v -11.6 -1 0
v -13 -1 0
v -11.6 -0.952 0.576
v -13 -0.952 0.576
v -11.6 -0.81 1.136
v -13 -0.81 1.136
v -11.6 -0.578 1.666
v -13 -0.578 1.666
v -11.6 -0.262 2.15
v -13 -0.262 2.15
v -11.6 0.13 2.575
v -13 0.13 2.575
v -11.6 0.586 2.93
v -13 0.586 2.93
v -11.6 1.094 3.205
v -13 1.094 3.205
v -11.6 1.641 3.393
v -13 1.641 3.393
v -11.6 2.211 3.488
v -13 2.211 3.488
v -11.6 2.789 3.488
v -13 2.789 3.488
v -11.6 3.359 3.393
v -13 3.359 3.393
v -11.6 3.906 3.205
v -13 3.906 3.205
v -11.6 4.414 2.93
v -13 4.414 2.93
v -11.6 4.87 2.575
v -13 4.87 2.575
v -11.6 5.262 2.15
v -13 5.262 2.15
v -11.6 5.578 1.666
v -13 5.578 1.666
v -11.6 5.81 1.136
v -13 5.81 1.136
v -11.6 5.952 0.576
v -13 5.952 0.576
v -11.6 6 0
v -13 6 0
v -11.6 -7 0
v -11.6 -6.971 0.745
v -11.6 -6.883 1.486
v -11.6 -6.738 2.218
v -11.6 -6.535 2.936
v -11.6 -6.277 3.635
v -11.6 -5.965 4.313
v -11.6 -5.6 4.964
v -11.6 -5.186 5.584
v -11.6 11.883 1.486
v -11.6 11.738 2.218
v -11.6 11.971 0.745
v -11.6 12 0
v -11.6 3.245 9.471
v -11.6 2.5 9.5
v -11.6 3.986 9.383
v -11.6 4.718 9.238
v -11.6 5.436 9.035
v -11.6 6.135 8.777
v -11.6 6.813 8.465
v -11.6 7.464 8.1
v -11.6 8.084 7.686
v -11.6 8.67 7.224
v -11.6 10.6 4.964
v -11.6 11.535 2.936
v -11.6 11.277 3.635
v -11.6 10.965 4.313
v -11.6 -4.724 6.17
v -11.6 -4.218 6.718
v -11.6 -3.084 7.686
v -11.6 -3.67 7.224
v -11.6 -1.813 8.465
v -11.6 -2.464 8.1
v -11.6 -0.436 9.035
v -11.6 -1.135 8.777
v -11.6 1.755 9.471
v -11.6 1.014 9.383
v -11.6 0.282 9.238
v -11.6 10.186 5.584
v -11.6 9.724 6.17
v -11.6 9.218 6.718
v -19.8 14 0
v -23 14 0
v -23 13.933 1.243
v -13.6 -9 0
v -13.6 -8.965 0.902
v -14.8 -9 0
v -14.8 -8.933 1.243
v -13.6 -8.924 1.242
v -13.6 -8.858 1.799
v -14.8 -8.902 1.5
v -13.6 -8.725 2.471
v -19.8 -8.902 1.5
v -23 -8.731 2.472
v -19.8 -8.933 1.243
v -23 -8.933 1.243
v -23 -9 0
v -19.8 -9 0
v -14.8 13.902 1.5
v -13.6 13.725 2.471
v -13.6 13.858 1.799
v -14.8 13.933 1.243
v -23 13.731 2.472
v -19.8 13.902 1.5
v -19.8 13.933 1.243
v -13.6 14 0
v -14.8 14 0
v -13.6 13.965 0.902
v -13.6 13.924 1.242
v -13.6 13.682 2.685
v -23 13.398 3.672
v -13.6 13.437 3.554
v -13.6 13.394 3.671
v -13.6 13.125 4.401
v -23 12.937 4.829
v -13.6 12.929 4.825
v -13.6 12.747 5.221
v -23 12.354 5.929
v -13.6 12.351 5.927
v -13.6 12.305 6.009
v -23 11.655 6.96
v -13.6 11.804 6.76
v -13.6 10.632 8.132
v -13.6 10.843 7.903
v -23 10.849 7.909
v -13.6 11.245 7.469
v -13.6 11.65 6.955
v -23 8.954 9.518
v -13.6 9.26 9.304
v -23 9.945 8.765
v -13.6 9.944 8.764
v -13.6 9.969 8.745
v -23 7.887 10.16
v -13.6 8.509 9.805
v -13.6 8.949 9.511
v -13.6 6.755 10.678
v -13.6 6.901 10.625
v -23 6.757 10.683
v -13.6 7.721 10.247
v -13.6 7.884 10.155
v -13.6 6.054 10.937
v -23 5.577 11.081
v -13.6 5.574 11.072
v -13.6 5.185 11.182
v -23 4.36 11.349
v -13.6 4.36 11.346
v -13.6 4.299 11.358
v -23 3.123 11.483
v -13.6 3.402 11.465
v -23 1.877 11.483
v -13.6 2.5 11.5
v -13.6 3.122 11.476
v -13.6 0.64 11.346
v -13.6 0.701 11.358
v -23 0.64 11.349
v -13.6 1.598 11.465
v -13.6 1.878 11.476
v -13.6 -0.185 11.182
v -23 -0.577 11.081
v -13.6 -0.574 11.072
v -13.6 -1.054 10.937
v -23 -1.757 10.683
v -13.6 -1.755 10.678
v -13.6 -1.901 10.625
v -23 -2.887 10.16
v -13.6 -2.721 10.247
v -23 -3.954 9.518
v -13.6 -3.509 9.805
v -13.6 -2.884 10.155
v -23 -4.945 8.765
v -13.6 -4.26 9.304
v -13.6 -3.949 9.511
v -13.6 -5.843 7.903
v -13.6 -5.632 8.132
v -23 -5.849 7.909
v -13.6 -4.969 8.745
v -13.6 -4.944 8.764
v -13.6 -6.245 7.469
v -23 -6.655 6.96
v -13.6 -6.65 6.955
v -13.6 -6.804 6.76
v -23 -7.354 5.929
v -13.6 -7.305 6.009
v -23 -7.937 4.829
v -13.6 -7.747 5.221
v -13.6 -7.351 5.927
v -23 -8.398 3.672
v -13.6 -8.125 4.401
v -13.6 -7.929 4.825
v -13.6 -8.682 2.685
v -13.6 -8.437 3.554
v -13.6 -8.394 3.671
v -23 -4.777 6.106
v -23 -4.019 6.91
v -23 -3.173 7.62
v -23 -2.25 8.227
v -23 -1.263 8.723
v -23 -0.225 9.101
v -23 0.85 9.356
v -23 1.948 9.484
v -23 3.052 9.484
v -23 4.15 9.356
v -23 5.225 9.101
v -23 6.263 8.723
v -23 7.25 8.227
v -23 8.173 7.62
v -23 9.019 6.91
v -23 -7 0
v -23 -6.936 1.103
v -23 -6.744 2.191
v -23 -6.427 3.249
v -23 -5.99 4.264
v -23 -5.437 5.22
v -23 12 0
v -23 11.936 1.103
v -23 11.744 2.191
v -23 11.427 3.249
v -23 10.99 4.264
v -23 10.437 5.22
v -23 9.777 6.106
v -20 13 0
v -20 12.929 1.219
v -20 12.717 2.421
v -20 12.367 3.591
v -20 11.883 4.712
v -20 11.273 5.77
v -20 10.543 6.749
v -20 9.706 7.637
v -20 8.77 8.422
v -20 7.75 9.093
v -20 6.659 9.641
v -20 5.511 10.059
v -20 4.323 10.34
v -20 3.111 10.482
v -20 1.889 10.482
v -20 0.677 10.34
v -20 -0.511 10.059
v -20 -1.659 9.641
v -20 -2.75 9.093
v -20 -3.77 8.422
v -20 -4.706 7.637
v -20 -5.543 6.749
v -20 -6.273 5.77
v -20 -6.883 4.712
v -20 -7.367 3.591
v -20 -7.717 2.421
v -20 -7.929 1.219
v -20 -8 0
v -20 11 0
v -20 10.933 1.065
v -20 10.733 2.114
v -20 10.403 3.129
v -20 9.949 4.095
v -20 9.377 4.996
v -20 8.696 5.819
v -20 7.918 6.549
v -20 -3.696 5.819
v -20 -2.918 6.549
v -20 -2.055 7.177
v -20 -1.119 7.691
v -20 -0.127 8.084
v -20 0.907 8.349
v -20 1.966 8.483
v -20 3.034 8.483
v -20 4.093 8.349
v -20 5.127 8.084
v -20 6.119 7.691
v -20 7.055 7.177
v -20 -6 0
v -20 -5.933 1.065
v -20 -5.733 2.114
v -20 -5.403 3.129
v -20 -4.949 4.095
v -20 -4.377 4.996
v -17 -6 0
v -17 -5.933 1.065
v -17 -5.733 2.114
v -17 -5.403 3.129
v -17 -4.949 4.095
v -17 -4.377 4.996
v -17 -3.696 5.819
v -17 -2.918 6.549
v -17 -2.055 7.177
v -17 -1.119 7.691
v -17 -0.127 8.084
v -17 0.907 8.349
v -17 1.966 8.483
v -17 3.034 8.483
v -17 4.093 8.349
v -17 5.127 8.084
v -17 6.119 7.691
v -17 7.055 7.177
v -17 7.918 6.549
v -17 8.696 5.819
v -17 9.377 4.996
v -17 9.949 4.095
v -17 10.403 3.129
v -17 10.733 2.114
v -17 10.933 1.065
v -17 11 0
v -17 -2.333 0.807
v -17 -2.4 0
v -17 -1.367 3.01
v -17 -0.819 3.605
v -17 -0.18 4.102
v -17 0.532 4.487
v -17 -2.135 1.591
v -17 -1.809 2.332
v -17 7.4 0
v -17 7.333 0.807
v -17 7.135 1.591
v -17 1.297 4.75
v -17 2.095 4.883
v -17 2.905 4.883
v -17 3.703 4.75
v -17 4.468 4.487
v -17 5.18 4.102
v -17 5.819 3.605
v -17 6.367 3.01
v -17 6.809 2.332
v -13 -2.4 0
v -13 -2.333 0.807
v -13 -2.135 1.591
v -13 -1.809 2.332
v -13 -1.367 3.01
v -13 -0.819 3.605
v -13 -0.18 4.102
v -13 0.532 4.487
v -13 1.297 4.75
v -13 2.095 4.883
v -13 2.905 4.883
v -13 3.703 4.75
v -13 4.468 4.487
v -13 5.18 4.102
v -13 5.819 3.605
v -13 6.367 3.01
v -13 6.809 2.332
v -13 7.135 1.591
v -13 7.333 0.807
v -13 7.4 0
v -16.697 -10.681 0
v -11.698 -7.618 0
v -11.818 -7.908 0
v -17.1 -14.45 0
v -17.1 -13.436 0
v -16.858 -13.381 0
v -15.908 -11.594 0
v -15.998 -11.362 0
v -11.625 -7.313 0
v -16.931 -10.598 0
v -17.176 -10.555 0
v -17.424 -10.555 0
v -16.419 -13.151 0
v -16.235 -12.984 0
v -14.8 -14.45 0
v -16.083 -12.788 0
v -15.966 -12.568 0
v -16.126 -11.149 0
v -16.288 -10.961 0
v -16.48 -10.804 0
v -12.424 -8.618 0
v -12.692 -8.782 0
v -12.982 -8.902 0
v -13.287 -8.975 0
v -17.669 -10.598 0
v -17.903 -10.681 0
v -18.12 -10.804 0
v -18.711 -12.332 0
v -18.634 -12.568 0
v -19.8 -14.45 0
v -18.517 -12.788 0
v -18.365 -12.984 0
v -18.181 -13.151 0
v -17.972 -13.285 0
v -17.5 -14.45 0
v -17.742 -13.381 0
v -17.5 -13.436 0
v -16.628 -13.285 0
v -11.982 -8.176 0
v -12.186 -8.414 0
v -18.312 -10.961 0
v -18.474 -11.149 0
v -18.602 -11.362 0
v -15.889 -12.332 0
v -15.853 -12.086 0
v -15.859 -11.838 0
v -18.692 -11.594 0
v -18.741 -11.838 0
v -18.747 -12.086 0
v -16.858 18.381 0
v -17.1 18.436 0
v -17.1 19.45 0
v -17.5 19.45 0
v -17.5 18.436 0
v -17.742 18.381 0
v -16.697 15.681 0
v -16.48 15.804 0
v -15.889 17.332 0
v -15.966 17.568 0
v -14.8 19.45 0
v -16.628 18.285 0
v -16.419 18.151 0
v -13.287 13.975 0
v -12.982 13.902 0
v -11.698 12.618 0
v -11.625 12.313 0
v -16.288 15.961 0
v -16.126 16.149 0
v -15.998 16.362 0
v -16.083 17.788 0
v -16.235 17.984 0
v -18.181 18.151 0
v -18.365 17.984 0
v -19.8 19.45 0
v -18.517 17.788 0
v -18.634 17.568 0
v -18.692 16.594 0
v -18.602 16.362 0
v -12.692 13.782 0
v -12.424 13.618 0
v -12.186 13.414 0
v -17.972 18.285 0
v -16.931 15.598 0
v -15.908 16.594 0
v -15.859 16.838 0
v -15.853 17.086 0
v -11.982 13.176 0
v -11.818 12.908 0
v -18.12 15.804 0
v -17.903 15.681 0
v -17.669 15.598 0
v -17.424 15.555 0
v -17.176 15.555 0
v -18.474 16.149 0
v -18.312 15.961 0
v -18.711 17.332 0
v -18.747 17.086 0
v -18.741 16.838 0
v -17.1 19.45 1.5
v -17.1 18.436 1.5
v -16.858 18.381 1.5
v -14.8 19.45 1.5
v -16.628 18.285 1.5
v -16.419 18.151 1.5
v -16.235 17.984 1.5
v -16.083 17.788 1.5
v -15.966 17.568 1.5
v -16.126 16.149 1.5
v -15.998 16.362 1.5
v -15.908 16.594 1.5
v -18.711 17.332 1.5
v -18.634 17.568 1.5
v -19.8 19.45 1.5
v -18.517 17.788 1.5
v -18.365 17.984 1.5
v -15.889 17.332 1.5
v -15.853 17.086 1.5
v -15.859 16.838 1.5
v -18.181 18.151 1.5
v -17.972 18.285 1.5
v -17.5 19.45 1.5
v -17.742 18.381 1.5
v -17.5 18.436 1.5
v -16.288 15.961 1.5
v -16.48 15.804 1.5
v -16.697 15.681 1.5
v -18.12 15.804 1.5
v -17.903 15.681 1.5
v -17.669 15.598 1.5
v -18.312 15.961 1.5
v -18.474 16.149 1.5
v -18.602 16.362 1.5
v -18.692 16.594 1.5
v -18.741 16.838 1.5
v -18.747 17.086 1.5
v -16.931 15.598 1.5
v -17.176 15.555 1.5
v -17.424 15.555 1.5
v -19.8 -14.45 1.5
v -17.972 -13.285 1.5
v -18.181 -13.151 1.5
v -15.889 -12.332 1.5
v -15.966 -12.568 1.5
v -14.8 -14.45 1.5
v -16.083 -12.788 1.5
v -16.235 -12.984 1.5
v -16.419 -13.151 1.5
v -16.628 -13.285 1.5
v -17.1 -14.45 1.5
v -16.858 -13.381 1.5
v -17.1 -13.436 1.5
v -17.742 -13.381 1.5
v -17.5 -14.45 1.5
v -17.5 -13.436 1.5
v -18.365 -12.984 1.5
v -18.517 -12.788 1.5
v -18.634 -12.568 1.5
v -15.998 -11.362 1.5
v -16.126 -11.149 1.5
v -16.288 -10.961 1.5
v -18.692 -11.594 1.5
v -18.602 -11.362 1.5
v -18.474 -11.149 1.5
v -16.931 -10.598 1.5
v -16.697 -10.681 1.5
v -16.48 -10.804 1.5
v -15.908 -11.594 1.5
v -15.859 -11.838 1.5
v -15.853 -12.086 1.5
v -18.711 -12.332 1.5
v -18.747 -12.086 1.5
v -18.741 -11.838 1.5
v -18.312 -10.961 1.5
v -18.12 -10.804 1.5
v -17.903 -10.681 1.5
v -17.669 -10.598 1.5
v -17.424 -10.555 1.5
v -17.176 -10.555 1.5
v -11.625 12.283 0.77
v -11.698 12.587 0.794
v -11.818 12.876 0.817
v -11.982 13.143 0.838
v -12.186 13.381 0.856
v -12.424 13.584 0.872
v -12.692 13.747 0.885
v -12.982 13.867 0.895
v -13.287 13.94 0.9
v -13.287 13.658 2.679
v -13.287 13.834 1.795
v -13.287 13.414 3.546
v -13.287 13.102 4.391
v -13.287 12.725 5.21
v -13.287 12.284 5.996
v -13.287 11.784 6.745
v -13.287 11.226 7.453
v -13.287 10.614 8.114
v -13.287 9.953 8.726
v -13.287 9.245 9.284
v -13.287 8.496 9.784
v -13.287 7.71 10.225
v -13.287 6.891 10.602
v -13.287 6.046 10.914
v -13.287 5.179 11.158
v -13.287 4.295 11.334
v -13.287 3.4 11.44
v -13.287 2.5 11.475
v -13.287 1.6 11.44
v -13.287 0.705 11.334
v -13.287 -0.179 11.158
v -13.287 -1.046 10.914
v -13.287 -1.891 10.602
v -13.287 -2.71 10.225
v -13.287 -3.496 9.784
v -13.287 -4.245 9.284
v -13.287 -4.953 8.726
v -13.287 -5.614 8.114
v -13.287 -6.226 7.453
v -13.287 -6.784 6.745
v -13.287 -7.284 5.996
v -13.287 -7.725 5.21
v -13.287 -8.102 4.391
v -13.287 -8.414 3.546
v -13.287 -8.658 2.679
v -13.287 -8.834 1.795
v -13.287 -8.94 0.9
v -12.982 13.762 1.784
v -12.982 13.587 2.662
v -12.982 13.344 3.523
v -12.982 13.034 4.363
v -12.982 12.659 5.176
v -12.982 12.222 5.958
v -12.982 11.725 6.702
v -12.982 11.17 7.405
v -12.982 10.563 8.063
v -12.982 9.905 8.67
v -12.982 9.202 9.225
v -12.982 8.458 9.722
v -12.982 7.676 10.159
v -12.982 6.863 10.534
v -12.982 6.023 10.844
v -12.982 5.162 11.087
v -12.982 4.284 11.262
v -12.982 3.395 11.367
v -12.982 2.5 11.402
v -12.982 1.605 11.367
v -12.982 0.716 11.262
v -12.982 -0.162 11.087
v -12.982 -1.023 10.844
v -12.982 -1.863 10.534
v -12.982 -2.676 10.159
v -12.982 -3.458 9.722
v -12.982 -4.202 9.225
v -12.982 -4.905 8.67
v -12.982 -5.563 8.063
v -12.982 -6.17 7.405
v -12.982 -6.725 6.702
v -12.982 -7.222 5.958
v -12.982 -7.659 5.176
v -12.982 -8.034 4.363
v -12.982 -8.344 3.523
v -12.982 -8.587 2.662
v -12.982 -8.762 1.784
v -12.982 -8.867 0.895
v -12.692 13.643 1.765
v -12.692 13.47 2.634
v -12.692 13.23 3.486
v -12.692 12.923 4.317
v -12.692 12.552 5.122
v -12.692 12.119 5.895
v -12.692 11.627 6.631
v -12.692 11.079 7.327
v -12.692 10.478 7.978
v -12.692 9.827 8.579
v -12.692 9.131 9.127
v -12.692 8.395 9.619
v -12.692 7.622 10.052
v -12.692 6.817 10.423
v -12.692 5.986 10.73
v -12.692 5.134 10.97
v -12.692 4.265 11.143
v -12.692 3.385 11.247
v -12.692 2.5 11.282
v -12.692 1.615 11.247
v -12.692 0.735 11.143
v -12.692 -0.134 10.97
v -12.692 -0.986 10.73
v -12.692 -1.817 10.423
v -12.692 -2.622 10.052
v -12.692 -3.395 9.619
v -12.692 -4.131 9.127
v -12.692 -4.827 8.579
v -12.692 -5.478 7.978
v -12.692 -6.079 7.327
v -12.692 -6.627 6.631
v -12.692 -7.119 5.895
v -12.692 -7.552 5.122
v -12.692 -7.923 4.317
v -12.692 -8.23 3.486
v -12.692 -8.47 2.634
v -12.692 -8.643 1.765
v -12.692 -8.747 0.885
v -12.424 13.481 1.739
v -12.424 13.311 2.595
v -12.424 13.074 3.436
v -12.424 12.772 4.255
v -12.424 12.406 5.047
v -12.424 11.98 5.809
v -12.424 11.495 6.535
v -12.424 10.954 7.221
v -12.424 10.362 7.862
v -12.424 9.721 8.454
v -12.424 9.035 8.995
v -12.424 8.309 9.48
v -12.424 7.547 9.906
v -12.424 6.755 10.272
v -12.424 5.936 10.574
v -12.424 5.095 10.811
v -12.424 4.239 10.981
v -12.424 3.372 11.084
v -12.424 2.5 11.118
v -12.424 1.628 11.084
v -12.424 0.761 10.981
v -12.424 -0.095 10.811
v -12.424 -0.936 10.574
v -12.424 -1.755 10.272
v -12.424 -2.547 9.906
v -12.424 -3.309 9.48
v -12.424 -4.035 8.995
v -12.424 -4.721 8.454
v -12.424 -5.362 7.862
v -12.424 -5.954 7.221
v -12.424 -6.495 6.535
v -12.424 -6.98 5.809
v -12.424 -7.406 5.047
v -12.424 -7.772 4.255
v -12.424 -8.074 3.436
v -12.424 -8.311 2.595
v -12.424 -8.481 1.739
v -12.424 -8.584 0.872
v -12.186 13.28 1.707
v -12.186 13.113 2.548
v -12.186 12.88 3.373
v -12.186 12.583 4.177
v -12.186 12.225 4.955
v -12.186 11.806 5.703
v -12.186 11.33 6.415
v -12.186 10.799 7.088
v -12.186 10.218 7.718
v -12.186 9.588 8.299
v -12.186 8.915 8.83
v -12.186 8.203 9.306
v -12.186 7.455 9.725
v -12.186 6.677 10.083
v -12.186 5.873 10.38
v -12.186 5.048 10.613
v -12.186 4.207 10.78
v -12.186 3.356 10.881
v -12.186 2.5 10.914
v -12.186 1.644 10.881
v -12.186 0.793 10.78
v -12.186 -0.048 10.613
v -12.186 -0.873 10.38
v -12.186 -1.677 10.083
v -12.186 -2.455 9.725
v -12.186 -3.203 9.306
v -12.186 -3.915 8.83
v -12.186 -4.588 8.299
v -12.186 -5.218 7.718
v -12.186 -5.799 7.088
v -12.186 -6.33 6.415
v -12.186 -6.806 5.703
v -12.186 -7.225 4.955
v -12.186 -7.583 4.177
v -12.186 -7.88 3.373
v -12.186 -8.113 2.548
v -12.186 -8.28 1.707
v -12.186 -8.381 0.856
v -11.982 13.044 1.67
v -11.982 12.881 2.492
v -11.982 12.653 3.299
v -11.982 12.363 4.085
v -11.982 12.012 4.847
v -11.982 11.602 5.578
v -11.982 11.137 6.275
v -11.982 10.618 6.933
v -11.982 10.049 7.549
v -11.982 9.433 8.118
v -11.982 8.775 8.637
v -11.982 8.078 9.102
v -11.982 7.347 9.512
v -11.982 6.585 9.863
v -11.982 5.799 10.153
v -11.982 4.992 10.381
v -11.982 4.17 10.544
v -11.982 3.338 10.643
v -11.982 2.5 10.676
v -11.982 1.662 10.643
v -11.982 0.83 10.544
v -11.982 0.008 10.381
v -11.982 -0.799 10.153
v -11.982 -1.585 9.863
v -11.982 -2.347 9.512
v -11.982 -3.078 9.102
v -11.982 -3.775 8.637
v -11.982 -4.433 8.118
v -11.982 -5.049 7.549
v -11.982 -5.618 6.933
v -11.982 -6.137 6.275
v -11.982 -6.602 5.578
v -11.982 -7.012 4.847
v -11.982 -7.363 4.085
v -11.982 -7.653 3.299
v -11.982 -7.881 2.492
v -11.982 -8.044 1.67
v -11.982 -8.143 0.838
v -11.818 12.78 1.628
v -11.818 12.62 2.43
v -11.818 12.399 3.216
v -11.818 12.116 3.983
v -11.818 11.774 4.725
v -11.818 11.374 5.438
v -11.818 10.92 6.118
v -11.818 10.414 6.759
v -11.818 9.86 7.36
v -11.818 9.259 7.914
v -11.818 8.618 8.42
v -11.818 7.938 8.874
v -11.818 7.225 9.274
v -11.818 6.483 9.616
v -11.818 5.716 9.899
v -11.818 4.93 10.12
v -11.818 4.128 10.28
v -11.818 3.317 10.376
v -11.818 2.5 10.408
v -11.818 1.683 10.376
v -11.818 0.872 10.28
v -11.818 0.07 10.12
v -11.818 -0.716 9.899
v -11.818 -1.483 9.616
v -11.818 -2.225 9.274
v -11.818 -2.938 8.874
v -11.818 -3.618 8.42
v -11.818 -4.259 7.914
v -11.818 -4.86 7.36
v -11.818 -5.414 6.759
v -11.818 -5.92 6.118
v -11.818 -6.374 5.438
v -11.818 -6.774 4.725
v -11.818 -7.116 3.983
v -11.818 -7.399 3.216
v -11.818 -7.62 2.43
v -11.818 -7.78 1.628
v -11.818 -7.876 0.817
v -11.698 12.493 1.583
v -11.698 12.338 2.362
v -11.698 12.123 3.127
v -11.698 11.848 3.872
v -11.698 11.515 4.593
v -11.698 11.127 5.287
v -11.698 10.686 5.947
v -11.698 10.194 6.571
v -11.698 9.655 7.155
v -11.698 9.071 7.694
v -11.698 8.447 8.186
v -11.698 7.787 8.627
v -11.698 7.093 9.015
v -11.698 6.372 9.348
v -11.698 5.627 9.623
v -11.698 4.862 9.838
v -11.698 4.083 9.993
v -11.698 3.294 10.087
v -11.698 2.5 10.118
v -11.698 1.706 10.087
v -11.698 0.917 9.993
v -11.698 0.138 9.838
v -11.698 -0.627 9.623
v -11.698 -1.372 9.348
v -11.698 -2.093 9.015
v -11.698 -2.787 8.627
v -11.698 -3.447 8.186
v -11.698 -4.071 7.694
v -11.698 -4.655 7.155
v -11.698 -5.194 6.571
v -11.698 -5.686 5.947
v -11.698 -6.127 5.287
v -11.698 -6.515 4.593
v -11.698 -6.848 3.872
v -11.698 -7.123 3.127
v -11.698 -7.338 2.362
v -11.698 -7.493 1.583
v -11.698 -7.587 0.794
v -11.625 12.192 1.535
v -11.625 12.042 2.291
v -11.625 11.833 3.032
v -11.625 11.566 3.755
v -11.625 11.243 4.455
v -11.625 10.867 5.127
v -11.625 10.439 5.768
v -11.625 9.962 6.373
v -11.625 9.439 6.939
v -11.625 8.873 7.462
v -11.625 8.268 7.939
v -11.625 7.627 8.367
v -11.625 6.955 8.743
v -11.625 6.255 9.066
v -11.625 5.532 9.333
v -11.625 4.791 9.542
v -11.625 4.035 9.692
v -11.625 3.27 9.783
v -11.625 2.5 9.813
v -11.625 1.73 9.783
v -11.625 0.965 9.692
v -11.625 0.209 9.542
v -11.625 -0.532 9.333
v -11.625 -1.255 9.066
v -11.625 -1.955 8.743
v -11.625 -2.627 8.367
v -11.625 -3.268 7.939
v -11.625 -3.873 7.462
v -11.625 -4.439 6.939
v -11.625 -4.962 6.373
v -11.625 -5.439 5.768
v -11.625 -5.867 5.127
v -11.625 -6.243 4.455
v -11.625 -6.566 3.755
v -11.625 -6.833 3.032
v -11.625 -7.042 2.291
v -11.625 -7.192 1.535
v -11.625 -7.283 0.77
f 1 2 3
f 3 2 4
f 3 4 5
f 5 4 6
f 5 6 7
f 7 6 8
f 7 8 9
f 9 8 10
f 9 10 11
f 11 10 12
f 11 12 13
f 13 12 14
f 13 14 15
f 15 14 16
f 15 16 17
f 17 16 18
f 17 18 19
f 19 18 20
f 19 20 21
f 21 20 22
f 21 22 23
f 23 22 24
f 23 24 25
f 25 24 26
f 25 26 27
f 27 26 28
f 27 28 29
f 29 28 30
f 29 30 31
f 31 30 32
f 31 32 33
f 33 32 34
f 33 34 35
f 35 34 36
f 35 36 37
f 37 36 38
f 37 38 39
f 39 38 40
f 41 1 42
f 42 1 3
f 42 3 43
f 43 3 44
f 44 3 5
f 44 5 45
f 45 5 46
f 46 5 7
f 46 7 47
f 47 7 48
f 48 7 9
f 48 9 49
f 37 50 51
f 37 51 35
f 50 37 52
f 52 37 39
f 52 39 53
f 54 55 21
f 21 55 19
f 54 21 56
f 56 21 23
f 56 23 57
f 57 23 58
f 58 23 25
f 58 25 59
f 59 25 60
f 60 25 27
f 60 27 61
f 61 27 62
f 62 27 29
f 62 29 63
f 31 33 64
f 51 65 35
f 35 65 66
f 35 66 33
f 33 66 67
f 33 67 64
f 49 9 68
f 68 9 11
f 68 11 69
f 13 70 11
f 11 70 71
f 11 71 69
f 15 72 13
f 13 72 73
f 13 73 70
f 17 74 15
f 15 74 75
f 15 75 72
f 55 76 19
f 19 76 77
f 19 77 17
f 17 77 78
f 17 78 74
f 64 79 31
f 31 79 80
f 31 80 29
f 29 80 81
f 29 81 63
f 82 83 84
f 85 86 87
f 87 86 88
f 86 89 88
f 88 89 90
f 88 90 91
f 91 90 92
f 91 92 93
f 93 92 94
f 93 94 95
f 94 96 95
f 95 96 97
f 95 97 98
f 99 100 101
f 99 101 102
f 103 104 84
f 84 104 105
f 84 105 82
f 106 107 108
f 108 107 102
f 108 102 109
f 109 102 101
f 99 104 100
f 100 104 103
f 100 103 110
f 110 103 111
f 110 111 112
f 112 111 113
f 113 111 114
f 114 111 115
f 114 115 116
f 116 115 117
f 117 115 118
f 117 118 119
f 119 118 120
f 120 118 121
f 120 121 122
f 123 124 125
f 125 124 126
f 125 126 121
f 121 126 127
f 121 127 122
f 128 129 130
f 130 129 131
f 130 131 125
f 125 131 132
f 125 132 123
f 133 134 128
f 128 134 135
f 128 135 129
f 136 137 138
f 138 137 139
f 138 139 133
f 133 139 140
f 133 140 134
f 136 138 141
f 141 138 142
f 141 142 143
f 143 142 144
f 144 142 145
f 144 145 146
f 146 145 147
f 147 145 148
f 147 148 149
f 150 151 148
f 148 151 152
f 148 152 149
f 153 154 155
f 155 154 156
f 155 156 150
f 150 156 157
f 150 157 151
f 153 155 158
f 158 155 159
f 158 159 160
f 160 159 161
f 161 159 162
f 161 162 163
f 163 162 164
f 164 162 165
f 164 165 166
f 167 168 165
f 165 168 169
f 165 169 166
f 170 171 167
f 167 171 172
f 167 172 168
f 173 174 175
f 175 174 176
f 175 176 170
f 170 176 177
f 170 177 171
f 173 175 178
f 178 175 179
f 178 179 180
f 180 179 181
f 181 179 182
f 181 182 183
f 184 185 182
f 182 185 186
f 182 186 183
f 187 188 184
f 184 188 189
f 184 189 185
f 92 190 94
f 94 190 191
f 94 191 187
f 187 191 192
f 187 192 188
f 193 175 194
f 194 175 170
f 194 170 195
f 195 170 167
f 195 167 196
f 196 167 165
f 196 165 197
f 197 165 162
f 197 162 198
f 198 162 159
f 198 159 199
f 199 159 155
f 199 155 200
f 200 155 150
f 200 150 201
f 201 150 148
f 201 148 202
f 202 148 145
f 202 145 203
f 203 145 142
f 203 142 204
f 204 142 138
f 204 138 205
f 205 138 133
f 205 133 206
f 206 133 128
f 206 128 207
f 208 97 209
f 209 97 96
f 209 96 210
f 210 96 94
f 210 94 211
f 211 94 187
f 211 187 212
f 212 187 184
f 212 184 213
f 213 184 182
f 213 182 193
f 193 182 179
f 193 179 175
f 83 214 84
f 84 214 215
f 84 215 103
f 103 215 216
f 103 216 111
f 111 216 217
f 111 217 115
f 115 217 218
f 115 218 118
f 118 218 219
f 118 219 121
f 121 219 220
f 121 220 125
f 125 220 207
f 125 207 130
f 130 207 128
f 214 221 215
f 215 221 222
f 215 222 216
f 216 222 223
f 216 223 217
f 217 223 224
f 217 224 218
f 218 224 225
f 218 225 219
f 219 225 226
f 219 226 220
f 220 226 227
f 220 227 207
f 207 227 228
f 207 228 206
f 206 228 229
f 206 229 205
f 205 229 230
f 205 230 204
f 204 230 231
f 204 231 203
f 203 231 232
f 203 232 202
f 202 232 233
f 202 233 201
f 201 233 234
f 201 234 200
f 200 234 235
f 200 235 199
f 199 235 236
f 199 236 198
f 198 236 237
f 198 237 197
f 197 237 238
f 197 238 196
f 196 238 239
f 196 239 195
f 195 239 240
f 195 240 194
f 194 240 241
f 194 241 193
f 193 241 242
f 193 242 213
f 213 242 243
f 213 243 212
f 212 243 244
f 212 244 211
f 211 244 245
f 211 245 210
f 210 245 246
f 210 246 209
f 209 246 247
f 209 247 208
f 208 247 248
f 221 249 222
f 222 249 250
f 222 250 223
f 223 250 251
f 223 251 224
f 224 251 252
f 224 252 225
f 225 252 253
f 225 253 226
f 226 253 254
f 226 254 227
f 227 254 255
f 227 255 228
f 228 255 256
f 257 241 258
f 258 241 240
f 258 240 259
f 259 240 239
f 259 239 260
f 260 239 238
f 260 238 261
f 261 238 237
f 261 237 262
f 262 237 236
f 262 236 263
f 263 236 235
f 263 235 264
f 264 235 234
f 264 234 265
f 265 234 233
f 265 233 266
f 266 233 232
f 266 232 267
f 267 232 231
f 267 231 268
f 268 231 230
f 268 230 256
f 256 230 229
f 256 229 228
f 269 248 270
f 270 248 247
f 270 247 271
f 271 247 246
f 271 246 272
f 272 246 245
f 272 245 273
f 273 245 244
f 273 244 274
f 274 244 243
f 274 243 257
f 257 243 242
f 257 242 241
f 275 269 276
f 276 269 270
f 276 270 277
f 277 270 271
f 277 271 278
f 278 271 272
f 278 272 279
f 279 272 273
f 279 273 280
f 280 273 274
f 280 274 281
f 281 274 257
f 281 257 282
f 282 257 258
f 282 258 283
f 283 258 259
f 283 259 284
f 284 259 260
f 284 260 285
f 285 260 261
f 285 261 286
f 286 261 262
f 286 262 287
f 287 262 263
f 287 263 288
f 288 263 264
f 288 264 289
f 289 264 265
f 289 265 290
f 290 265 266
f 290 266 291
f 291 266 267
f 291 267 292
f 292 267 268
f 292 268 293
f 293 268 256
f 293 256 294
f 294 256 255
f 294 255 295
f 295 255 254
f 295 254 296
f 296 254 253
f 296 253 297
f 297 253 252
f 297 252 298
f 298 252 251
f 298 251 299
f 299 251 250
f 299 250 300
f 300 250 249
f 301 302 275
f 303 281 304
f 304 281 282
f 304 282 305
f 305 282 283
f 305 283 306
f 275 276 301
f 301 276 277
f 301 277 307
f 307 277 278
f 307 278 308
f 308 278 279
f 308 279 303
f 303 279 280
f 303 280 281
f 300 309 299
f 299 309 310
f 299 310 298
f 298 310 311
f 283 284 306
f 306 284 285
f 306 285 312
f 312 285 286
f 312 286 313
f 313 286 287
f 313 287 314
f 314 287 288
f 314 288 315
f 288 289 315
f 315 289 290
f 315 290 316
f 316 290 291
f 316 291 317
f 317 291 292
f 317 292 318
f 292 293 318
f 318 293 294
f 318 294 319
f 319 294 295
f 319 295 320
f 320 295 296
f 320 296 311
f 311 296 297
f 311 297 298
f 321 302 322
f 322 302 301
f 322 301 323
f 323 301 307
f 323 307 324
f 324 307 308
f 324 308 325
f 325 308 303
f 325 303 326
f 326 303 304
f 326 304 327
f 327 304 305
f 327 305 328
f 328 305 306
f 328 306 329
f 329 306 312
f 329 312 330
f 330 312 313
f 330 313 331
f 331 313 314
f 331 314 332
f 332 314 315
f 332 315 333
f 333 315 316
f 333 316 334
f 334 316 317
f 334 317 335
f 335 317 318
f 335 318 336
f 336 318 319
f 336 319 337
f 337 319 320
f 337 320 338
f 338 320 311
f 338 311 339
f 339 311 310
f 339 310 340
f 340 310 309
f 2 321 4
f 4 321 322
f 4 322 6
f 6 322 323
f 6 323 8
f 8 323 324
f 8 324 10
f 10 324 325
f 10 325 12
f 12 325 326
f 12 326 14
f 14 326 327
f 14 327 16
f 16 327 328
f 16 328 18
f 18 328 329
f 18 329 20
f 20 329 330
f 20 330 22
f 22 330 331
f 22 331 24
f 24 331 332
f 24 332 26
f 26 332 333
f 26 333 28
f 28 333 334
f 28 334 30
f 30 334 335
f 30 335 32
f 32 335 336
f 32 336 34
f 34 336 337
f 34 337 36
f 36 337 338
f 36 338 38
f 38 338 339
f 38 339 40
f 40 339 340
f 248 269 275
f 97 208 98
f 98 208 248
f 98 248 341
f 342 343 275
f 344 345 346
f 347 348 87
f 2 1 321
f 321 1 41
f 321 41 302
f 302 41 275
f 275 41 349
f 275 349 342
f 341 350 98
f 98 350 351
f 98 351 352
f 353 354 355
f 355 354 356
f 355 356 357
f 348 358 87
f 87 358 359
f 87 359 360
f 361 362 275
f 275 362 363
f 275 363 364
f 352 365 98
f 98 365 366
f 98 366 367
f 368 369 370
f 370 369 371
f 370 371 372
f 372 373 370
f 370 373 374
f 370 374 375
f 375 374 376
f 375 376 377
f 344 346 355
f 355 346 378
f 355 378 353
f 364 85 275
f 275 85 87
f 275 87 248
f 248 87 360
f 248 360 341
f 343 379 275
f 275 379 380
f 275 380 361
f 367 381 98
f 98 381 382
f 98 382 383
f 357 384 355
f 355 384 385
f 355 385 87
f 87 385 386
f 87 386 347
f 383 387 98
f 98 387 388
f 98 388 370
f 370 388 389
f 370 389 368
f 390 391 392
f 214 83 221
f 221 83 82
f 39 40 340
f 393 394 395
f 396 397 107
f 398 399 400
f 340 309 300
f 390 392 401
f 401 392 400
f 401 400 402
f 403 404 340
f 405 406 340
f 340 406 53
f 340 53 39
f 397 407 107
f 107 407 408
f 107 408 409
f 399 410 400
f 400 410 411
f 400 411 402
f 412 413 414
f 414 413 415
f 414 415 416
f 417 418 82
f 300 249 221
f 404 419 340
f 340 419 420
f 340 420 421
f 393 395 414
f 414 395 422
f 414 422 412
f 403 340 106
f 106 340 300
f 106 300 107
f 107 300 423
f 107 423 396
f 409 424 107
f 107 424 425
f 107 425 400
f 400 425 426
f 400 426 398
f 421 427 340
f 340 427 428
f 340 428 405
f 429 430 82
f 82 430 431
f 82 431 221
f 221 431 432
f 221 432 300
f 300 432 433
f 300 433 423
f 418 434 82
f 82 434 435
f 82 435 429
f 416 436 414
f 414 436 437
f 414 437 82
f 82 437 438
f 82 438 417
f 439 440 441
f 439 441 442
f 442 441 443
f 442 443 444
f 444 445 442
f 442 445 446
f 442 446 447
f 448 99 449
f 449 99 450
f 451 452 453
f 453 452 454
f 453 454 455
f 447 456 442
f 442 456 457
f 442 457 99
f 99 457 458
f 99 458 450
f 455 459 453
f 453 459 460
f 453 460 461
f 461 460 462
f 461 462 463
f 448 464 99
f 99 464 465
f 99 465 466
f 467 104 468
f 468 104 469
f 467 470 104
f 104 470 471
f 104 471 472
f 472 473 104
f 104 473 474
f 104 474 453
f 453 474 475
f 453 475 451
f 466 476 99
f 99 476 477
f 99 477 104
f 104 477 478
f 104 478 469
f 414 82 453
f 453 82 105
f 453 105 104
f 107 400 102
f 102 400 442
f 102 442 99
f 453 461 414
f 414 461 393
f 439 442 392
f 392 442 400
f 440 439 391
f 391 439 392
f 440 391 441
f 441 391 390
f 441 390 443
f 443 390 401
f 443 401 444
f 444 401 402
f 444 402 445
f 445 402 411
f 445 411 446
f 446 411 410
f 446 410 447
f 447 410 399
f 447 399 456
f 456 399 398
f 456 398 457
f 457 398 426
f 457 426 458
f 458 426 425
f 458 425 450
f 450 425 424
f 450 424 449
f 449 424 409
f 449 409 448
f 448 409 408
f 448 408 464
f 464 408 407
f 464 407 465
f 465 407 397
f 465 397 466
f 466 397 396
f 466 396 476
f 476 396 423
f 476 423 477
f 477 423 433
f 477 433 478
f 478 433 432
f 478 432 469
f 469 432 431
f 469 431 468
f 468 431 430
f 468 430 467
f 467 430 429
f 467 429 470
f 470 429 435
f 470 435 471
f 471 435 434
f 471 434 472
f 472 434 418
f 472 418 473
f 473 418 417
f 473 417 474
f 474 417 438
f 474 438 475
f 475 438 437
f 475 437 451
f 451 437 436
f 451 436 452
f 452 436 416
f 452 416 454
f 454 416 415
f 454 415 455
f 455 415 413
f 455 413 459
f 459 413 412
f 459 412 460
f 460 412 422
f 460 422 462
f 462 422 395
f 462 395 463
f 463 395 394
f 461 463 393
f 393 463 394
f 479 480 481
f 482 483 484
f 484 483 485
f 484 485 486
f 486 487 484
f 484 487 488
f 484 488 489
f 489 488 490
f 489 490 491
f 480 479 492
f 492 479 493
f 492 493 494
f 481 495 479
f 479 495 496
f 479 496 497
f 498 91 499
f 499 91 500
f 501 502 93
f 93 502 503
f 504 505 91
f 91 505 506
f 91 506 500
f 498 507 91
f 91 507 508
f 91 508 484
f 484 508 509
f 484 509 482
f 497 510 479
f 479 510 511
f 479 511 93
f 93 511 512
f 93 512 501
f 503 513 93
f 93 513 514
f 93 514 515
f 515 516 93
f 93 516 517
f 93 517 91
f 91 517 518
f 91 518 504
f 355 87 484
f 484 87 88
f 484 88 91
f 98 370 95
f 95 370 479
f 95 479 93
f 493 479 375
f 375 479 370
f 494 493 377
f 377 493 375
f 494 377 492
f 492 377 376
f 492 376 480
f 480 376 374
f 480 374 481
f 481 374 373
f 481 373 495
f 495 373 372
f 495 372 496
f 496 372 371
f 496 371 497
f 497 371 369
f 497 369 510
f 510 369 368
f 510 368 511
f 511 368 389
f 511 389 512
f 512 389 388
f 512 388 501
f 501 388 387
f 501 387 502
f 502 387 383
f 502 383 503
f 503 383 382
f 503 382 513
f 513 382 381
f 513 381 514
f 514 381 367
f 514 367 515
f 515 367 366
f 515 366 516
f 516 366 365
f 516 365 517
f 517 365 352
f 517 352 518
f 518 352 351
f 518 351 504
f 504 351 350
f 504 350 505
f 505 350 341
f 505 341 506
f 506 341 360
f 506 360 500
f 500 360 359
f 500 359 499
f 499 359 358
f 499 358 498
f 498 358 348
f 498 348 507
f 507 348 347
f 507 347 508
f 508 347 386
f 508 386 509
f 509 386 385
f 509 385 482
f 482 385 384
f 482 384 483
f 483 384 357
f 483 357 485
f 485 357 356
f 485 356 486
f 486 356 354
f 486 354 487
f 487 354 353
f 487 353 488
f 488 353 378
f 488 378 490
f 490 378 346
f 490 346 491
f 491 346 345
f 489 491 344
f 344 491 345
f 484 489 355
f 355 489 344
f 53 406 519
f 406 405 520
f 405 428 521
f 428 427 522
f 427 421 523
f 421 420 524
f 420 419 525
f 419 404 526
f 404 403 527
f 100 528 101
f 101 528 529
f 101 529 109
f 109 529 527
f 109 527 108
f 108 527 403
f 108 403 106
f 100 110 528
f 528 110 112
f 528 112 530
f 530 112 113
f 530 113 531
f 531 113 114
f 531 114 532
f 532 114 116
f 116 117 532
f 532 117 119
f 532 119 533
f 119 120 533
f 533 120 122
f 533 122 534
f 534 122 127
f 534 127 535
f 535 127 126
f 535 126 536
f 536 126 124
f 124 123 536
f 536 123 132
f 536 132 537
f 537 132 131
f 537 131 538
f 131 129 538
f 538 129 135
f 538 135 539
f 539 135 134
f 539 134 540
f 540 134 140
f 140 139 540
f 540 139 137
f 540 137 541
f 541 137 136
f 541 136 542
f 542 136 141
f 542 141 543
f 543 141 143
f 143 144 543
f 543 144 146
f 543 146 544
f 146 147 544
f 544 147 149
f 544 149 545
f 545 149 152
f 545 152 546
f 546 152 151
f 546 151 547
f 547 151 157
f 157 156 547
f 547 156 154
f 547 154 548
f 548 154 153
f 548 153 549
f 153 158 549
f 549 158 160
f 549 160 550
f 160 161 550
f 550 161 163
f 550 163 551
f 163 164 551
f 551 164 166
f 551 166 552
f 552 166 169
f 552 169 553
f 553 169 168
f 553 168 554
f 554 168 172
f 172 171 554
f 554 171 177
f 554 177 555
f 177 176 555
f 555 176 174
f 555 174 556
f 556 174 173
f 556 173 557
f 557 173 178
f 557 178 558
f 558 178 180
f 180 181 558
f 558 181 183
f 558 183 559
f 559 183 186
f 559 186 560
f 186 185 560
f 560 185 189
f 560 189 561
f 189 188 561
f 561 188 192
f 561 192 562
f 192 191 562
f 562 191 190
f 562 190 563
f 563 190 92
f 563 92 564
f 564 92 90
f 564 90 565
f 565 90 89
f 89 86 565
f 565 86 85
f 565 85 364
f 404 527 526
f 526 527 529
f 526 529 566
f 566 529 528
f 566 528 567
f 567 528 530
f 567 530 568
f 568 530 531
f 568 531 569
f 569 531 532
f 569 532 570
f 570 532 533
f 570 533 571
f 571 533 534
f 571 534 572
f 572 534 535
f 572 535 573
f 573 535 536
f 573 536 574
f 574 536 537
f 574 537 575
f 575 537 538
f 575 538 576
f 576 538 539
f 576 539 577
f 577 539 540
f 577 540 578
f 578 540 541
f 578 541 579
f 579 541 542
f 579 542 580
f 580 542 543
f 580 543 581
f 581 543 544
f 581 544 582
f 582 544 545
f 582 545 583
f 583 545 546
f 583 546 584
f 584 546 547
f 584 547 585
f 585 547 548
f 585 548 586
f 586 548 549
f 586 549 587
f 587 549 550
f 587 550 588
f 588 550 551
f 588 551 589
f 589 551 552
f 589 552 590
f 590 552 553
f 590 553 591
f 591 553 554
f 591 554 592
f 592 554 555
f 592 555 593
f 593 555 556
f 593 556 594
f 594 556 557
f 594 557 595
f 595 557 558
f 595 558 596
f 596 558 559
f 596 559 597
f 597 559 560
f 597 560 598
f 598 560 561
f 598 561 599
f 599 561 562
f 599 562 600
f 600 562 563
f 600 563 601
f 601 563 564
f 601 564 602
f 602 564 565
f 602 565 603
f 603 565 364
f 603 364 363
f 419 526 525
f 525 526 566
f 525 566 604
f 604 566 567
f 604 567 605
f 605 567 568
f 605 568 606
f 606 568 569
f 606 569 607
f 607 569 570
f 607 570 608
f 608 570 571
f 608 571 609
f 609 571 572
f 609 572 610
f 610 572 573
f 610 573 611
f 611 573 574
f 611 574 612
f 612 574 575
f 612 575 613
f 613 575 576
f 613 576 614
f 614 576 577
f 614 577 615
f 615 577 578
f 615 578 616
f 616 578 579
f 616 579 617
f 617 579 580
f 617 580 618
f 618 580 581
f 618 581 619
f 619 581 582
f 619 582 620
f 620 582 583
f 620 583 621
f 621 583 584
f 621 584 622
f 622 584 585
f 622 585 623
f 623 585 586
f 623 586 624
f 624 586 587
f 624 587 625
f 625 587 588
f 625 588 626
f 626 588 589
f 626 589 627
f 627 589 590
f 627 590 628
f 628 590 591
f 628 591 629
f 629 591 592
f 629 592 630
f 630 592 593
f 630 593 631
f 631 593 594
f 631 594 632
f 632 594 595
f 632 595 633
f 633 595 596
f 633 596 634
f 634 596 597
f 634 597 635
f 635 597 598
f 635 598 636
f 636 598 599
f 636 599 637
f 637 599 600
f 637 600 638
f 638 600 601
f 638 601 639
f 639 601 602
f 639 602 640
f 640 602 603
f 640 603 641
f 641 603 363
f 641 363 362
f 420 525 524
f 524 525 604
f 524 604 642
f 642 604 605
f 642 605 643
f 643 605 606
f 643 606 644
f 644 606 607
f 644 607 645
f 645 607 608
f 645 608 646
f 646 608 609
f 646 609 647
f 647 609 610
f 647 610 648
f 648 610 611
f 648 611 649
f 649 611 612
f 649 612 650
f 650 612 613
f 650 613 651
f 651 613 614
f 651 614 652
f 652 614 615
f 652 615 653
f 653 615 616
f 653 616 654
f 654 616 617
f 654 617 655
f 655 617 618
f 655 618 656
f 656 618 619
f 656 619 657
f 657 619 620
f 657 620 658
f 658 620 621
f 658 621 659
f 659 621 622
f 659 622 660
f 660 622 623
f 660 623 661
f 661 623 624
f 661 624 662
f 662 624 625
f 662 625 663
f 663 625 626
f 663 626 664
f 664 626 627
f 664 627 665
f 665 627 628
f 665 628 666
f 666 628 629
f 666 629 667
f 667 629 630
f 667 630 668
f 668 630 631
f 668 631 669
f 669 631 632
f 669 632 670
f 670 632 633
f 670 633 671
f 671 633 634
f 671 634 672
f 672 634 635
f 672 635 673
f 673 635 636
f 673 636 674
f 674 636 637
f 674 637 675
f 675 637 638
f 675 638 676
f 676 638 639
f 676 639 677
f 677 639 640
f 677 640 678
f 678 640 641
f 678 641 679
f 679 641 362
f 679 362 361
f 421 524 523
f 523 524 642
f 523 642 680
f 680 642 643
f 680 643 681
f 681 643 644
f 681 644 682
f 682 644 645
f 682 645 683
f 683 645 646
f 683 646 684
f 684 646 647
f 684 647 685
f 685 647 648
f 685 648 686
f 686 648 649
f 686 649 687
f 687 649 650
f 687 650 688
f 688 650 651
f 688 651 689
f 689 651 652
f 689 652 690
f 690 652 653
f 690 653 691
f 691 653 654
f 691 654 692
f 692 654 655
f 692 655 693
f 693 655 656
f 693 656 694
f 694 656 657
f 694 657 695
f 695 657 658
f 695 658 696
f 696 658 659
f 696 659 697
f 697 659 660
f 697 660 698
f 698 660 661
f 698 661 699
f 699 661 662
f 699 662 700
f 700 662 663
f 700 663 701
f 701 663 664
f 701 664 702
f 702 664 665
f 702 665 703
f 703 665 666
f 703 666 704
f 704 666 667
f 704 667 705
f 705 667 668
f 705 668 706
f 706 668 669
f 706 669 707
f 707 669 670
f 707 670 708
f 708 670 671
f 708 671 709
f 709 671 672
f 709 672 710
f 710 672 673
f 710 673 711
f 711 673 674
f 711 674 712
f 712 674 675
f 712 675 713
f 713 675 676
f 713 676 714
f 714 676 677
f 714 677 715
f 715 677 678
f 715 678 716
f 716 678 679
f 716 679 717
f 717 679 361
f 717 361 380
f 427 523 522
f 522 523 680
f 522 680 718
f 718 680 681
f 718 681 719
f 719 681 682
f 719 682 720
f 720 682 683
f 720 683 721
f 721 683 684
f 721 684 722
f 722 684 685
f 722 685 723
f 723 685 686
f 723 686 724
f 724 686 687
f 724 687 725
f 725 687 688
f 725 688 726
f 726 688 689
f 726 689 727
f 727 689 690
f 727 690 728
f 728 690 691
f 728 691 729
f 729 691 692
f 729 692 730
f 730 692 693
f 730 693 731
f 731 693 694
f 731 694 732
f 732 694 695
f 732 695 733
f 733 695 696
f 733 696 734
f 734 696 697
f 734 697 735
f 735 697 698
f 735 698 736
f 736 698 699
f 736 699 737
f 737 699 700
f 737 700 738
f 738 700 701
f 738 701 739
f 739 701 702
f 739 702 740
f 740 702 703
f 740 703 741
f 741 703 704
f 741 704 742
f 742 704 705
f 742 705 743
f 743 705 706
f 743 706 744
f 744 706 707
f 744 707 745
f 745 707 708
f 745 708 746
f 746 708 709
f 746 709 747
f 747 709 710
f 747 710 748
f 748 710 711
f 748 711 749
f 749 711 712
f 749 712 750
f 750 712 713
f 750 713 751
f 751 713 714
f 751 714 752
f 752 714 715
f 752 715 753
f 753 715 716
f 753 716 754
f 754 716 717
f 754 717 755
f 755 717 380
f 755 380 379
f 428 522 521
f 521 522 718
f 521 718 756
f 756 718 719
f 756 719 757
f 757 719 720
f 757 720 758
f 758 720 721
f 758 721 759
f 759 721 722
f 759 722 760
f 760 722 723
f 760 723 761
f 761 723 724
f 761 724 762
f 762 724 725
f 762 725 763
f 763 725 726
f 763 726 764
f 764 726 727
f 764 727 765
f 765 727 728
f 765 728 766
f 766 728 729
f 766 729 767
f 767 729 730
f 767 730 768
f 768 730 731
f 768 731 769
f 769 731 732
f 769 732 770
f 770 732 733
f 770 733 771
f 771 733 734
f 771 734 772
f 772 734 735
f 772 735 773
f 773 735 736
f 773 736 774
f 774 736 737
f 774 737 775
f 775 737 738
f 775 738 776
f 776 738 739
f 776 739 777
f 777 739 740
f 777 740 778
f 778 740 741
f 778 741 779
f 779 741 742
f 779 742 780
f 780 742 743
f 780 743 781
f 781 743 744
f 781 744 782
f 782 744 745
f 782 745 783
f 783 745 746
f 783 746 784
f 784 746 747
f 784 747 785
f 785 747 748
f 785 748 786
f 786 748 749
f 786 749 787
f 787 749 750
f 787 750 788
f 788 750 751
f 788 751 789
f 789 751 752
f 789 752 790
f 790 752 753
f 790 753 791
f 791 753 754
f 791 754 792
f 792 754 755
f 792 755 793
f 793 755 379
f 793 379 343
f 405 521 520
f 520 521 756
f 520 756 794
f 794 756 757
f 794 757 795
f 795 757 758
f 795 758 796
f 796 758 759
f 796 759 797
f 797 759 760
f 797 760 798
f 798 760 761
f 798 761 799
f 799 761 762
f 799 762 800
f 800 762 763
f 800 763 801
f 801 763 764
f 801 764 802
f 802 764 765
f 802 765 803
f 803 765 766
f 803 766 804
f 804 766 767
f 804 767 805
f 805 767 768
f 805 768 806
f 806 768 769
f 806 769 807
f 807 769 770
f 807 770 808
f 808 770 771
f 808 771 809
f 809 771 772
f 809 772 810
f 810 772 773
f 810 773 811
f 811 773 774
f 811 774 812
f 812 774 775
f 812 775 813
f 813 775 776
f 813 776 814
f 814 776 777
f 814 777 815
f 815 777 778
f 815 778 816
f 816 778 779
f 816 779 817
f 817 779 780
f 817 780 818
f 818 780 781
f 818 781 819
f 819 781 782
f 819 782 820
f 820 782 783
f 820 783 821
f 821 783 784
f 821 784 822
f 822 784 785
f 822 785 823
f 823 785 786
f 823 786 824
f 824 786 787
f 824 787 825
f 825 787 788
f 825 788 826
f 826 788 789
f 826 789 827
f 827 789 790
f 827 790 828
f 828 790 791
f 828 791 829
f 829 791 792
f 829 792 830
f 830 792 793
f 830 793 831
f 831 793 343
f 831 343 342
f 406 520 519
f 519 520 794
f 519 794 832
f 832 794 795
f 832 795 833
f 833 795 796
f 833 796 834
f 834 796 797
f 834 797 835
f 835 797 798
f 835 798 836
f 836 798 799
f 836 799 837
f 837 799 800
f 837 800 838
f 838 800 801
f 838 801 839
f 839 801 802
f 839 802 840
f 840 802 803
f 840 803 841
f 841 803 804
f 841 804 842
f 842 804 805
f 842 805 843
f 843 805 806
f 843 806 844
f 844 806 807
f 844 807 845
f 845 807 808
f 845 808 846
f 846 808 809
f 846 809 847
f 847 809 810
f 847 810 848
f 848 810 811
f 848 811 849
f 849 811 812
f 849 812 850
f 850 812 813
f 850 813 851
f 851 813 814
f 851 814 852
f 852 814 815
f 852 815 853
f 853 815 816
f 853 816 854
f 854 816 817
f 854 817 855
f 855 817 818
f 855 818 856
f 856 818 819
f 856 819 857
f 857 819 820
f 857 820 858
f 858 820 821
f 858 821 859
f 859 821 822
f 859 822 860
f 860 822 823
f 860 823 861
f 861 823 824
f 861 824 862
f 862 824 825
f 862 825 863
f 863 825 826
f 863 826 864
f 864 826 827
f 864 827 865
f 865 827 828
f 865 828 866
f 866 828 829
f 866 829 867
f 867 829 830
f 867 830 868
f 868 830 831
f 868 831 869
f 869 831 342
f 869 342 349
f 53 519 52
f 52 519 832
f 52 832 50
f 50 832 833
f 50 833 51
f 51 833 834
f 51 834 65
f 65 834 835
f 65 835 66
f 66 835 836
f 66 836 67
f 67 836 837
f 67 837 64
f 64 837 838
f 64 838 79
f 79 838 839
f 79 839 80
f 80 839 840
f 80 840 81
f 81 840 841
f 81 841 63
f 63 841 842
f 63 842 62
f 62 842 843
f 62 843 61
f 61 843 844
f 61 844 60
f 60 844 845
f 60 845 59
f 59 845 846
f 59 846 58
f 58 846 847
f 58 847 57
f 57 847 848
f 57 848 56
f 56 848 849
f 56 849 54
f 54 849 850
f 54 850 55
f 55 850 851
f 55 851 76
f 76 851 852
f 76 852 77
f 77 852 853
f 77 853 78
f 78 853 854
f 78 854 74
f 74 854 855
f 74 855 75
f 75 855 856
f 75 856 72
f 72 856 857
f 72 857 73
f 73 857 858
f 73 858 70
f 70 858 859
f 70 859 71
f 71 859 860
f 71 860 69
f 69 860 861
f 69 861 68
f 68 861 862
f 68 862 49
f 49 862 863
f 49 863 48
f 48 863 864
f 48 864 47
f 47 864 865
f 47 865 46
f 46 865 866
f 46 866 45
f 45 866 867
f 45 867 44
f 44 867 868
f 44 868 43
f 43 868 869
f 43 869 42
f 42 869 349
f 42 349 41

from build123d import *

# Parameters (mm, degrees)
SKETCH_3_W          = 14.74967026
SKETCH_3_H          = 24.956193141
CUT_EXTRUDE_2_DEPTH = 18
EXTRUDE_2_DEPTH     = 1.5
FILLET_1_R          = 2


with BuildPart() as part:
    # 草图1 → 旋转1 (revolve)
    with BuildSketch(Plane.XY, mode=Mode.PRIVATE) as revolve_1_sk:
        Polygon((-11.6, 6), (-11.6, 14), (-23, 14), (-23, 12), (-20, 13), (-20, 11), (-17, 11), (-17, 7.4), (-13, 7.4), (-13, 6), align=None)
    revolve(revolve_1_sk.sketch.rotate(Axis((-19.18351236, 2.5, 0), (1, 0, 0)), 180), axis=Axis((-19.18351236, 2.5, 0), (1, 0, 0)))

    # 草图3 → 切除-拉伸2 (cut)
    with BuildSketch(Plane.XY):
        with Locations((-16.988825522, 2.302922831)):
            Rectangle(SKETCH_3_W, SKETCH_3_H)
    extrude(amount=-CUT_EXTRUDE_2_DEPTH, mode=Mode.SUBTRACT)

    # 草图4 → 凸台-拉伸2 (add)
    with BuildSketch(Plane(origin=(0, 0, 0), x_dir=(-1, 0, 0), z_dir=(0, 0, -1))):
        with BuildLine():
            Line((14.8, 14), (14.8, 19.45))
            Line((14.8, 19.45), (17.1, 19.45))
            Line((17.1, 19.45), (17.1, 18.436140662))
            ThreePointArc((17.1, 18.436140662), (17.3, 15.55), (17.5, 18.436140662))
            Line((17.5, 18.436140662), (17.5, 19.45))
            Line((17.5, 19.45), (19.8, 19.45))
            Line((19.8, 19.45), (19.8, 14))
            Line((19.8, 14), (19.8, 12.669411603))
            Line((19.8, 12.669411603), (14.8, 12.669411603))
            Line((14.8, 12.669411603), (14.8, 14))
        make_face()
        with BuildLine():
            Line((19.8, -9), (19.8, -7.669411603))
            Line((19.8, -7.669411603), (14.8, -7.669411603))
            Line((14.8, -7.669411603), (14.8, -9))
            Line((14.8, -9), (14.8, -14.45))
            Line((14.8, -14.45), (17.1, -14.45))
            Line((17.1, -14.45), (17.1, -13.436140662))
            ThreePointArc((17.1, -13.436140662), (17.3, -10.55), (17.5, -13.436140662))
            Line((17.5, -13.436140662), (17.5, -14.45))
            Line((17.5, -14.45), (19.8, -14.45))
            Line((19.8, -14.45), (19.8, -9))
        make_face()
    extrude(amount=-EXTRUDE_2_DEPTH)

    # 圆角1
    fillet_1_edges = [part.edges().sort_by_distance(p)[0] for p in [
        (-11.6, 2.5, 11.5),
    ]]
    fillet(fillet_1_edges, radius=FILLET_1_R)


solid = part.part
